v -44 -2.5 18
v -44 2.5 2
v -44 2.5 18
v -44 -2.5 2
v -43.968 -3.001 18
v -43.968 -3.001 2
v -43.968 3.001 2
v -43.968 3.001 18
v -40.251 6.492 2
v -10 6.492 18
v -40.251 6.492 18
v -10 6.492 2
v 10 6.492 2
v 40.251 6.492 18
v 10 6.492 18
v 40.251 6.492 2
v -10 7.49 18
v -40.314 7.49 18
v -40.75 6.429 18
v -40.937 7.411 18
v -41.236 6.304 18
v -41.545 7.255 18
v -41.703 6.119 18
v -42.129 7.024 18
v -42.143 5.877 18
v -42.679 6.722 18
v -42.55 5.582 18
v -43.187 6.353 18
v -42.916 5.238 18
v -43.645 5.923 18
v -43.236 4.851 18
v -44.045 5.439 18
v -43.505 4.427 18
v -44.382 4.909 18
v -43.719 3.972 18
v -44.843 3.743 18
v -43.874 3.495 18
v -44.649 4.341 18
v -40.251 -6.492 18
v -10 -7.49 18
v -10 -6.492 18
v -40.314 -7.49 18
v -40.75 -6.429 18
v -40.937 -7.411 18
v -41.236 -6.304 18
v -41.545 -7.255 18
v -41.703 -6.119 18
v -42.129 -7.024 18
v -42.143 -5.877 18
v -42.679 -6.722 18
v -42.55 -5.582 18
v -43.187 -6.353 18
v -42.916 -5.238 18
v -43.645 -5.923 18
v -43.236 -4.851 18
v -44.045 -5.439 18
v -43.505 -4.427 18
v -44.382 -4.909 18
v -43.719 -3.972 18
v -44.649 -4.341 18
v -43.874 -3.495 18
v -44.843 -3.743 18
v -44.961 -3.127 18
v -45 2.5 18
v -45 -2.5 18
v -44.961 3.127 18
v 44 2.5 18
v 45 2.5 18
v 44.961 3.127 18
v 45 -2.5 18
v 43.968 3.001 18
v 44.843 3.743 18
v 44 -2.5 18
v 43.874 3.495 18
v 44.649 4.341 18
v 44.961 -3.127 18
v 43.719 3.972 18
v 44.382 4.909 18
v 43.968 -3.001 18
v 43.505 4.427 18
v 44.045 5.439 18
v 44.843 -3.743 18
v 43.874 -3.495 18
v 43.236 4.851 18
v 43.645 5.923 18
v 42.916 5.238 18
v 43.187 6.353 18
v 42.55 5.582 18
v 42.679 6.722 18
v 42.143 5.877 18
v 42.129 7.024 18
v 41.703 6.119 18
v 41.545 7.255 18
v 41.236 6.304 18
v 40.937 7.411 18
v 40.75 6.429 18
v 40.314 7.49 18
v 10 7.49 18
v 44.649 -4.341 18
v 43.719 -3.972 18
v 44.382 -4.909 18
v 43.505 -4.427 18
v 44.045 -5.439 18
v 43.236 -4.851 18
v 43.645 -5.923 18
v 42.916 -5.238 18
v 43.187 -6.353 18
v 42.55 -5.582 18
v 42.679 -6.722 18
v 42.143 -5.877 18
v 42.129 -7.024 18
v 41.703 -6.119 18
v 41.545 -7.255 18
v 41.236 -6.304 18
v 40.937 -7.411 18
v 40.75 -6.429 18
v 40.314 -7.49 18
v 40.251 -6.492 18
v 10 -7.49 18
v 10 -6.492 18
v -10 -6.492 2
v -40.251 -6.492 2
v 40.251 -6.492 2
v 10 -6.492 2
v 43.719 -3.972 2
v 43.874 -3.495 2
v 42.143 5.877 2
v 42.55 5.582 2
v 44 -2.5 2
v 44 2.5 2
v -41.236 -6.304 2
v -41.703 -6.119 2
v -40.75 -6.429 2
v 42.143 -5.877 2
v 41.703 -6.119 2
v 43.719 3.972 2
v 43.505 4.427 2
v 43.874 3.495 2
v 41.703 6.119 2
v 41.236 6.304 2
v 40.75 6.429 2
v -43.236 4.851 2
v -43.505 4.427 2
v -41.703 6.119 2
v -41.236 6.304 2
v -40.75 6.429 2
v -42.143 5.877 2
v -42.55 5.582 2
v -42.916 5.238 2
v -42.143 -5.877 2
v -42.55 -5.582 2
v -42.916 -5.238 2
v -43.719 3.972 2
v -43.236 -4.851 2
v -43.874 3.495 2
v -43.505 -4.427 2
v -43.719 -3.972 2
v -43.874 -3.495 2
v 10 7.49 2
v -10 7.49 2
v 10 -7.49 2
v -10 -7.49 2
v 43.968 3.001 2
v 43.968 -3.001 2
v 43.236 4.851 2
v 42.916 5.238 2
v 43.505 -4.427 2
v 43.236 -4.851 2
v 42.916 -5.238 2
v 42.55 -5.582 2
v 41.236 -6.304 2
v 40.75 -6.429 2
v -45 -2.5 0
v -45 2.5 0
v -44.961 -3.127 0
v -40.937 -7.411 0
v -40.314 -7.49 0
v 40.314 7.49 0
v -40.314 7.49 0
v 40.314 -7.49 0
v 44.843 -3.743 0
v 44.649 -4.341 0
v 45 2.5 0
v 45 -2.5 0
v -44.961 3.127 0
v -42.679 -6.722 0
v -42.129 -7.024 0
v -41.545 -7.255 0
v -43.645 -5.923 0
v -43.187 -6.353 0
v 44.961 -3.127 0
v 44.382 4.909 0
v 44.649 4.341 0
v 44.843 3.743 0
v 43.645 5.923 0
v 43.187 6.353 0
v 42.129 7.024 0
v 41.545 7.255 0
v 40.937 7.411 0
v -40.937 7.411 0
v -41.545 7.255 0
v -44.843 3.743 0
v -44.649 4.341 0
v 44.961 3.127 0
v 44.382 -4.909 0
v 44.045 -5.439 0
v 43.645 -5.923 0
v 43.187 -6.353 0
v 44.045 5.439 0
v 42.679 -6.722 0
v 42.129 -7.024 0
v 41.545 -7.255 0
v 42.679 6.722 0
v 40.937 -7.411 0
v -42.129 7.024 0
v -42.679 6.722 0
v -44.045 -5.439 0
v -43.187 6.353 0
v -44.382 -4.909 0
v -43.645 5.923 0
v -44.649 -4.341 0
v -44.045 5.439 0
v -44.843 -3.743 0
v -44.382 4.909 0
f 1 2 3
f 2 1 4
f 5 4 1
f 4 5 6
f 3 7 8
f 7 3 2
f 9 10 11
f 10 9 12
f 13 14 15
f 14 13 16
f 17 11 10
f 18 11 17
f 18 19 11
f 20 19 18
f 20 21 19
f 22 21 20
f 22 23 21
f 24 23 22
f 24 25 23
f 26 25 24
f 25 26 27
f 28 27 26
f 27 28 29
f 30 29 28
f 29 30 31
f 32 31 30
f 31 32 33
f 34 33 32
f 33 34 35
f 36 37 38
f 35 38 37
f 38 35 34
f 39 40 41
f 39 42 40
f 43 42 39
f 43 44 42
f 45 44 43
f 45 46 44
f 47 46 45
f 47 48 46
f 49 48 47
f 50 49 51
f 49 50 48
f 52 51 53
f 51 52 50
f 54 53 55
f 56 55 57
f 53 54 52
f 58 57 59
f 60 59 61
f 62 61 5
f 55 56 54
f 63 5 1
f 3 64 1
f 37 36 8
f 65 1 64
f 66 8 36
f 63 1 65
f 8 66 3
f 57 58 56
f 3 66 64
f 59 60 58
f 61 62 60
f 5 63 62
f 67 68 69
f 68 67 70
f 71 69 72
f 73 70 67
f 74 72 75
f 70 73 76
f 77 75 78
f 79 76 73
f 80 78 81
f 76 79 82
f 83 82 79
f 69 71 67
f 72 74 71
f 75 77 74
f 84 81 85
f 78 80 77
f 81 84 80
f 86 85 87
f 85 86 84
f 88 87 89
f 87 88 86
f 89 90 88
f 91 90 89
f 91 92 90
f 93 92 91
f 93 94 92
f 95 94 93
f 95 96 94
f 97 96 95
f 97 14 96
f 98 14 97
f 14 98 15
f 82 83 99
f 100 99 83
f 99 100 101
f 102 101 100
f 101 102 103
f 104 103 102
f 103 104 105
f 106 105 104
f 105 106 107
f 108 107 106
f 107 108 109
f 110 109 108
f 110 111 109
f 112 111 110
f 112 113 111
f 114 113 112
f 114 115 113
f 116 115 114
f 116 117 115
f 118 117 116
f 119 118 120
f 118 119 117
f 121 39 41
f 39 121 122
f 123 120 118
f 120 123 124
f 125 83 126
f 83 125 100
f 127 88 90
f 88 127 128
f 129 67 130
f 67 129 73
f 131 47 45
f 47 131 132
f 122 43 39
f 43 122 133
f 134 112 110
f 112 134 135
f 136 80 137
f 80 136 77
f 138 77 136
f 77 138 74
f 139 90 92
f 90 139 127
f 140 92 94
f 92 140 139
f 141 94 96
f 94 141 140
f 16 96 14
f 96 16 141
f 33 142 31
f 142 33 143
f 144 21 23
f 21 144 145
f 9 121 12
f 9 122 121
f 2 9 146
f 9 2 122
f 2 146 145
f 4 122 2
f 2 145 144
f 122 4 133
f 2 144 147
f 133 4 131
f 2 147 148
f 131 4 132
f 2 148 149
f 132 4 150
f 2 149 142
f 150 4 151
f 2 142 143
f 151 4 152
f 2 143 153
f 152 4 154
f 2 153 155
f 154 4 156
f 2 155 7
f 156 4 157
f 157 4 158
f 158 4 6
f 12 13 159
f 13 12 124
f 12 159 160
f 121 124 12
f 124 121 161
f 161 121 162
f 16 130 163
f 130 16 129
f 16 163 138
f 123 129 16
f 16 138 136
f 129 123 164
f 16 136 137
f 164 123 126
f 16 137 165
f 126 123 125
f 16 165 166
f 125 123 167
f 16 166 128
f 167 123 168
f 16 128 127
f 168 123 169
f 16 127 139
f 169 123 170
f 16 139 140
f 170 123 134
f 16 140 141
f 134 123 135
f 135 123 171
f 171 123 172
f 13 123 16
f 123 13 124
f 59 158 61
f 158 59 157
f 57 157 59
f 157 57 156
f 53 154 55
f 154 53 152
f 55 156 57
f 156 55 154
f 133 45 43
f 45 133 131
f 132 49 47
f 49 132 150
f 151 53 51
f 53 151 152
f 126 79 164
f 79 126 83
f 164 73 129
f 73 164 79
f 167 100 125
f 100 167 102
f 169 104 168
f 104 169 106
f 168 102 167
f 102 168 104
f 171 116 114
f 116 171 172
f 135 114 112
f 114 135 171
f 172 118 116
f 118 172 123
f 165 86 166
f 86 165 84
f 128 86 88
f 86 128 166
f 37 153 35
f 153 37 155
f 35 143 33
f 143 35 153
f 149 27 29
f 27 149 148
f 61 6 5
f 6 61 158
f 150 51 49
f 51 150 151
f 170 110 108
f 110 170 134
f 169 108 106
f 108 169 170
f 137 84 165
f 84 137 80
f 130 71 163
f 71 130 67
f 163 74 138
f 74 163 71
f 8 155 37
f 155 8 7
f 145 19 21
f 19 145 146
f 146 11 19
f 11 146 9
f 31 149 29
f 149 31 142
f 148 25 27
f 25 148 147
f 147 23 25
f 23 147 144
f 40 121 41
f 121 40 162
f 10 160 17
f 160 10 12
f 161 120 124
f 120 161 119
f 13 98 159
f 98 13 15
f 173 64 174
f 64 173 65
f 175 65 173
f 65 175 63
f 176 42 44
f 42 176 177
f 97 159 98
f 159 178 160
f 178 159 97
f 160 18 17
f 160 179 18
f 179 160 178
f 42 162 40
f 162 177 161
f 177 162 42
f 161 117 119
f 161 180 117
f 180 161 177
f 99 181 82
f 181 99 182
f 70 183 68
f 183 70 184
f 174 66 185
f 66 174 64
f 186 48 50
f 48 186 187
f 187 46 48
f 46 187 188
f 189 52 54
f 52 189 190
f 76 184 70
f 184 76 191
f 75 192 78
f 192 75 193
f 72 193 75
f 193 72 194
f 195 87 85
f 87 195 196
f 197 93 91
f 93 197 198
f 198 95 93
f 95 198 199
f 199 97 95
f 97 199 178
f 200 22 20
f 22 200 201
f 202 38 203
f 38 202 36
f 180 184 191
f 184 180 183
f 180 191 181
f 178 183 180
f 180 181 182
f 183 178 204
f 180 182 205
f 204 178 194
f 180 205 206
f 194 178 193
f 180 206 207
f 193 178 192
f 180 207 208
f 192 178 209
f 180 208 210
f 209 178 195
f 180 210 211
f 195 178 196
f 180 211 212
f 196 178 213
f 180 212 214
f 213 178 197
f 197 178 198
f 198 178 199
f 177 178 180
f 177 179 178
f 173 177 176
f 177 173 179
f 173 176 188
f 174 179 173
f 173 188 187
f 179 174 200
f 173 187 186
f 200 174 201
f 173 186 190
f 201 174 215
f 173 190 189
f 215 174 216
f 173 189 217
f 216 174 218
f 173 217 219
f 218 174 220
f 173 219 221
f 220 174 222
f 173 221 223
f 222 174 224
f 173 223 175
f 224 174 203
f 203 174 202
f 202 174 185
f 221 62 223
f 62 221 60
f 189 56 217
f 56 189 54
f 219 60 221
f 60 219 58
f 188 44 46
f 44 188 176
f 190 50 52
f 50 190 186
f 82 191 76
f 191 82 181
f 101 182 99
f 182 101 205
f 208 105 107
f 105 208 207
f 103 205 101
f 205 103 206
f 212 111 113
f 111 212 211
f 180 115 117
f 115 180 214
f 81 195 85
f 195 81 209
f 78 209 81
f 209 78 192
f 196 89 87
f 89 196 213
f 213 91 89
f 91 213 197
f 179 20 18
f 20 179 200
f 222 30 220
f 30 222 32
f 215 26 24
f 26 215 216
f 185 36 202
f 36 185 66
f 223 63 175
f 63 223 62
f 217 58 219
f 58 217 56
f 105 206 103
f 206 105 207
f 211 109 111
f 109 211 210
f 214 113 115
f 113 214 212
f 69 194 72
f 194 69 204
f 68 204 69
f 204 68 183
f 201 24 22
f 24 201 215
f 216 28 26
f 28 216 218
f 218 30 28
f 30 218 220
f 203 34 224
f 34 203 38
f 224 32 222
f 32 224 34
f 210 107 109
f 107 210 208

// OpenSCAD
$fn = 50;


difference() {
	union() {
		hull() {
			translate(v = [-40.0000000000, 2.5000000000, 0]) {
				cylinder(h = 18, r = 5);
			}
			translate(v = [40.0000000000, 2.5000000000, 0]) {
				cylinder(h = 18, r = 5);
			}
			translate(v = [-40.0000000000, -2.5000000000, 0]) {
				cylinder(h = 18, r = 5);
			}
			translate(v = [40.0000000000, -2.5000000000, 0]) {
				cylinder(h = 18, r = 5);
			}
		}
	}
	union() {
		translate(v = [0, 0, 2]) {
			hull() {
				translate(v = [-40.0000000000, 2.5000000000, 0]) {
					cylinder(h = 16, r = 4);
				}
				translate(v = [40.0000000000, 2.5000000000, 0]) {
					cylinder(h = 16, r = 4);
				}
				translate(v = [-40.0000000000, -2.5000000000, 0]) {
					cylinder(h = 16, r = 4);
				}
				translate(v = [40.0000000000, -2.5000000000, 0]) {
					cylinder(h = 16, r = 4);
				}
			}
		}
		translate(v = [-10.0000000000, -15.0000000000, 2]) {
			cube(size = [20, 30, 16]);
		}
	}
}
